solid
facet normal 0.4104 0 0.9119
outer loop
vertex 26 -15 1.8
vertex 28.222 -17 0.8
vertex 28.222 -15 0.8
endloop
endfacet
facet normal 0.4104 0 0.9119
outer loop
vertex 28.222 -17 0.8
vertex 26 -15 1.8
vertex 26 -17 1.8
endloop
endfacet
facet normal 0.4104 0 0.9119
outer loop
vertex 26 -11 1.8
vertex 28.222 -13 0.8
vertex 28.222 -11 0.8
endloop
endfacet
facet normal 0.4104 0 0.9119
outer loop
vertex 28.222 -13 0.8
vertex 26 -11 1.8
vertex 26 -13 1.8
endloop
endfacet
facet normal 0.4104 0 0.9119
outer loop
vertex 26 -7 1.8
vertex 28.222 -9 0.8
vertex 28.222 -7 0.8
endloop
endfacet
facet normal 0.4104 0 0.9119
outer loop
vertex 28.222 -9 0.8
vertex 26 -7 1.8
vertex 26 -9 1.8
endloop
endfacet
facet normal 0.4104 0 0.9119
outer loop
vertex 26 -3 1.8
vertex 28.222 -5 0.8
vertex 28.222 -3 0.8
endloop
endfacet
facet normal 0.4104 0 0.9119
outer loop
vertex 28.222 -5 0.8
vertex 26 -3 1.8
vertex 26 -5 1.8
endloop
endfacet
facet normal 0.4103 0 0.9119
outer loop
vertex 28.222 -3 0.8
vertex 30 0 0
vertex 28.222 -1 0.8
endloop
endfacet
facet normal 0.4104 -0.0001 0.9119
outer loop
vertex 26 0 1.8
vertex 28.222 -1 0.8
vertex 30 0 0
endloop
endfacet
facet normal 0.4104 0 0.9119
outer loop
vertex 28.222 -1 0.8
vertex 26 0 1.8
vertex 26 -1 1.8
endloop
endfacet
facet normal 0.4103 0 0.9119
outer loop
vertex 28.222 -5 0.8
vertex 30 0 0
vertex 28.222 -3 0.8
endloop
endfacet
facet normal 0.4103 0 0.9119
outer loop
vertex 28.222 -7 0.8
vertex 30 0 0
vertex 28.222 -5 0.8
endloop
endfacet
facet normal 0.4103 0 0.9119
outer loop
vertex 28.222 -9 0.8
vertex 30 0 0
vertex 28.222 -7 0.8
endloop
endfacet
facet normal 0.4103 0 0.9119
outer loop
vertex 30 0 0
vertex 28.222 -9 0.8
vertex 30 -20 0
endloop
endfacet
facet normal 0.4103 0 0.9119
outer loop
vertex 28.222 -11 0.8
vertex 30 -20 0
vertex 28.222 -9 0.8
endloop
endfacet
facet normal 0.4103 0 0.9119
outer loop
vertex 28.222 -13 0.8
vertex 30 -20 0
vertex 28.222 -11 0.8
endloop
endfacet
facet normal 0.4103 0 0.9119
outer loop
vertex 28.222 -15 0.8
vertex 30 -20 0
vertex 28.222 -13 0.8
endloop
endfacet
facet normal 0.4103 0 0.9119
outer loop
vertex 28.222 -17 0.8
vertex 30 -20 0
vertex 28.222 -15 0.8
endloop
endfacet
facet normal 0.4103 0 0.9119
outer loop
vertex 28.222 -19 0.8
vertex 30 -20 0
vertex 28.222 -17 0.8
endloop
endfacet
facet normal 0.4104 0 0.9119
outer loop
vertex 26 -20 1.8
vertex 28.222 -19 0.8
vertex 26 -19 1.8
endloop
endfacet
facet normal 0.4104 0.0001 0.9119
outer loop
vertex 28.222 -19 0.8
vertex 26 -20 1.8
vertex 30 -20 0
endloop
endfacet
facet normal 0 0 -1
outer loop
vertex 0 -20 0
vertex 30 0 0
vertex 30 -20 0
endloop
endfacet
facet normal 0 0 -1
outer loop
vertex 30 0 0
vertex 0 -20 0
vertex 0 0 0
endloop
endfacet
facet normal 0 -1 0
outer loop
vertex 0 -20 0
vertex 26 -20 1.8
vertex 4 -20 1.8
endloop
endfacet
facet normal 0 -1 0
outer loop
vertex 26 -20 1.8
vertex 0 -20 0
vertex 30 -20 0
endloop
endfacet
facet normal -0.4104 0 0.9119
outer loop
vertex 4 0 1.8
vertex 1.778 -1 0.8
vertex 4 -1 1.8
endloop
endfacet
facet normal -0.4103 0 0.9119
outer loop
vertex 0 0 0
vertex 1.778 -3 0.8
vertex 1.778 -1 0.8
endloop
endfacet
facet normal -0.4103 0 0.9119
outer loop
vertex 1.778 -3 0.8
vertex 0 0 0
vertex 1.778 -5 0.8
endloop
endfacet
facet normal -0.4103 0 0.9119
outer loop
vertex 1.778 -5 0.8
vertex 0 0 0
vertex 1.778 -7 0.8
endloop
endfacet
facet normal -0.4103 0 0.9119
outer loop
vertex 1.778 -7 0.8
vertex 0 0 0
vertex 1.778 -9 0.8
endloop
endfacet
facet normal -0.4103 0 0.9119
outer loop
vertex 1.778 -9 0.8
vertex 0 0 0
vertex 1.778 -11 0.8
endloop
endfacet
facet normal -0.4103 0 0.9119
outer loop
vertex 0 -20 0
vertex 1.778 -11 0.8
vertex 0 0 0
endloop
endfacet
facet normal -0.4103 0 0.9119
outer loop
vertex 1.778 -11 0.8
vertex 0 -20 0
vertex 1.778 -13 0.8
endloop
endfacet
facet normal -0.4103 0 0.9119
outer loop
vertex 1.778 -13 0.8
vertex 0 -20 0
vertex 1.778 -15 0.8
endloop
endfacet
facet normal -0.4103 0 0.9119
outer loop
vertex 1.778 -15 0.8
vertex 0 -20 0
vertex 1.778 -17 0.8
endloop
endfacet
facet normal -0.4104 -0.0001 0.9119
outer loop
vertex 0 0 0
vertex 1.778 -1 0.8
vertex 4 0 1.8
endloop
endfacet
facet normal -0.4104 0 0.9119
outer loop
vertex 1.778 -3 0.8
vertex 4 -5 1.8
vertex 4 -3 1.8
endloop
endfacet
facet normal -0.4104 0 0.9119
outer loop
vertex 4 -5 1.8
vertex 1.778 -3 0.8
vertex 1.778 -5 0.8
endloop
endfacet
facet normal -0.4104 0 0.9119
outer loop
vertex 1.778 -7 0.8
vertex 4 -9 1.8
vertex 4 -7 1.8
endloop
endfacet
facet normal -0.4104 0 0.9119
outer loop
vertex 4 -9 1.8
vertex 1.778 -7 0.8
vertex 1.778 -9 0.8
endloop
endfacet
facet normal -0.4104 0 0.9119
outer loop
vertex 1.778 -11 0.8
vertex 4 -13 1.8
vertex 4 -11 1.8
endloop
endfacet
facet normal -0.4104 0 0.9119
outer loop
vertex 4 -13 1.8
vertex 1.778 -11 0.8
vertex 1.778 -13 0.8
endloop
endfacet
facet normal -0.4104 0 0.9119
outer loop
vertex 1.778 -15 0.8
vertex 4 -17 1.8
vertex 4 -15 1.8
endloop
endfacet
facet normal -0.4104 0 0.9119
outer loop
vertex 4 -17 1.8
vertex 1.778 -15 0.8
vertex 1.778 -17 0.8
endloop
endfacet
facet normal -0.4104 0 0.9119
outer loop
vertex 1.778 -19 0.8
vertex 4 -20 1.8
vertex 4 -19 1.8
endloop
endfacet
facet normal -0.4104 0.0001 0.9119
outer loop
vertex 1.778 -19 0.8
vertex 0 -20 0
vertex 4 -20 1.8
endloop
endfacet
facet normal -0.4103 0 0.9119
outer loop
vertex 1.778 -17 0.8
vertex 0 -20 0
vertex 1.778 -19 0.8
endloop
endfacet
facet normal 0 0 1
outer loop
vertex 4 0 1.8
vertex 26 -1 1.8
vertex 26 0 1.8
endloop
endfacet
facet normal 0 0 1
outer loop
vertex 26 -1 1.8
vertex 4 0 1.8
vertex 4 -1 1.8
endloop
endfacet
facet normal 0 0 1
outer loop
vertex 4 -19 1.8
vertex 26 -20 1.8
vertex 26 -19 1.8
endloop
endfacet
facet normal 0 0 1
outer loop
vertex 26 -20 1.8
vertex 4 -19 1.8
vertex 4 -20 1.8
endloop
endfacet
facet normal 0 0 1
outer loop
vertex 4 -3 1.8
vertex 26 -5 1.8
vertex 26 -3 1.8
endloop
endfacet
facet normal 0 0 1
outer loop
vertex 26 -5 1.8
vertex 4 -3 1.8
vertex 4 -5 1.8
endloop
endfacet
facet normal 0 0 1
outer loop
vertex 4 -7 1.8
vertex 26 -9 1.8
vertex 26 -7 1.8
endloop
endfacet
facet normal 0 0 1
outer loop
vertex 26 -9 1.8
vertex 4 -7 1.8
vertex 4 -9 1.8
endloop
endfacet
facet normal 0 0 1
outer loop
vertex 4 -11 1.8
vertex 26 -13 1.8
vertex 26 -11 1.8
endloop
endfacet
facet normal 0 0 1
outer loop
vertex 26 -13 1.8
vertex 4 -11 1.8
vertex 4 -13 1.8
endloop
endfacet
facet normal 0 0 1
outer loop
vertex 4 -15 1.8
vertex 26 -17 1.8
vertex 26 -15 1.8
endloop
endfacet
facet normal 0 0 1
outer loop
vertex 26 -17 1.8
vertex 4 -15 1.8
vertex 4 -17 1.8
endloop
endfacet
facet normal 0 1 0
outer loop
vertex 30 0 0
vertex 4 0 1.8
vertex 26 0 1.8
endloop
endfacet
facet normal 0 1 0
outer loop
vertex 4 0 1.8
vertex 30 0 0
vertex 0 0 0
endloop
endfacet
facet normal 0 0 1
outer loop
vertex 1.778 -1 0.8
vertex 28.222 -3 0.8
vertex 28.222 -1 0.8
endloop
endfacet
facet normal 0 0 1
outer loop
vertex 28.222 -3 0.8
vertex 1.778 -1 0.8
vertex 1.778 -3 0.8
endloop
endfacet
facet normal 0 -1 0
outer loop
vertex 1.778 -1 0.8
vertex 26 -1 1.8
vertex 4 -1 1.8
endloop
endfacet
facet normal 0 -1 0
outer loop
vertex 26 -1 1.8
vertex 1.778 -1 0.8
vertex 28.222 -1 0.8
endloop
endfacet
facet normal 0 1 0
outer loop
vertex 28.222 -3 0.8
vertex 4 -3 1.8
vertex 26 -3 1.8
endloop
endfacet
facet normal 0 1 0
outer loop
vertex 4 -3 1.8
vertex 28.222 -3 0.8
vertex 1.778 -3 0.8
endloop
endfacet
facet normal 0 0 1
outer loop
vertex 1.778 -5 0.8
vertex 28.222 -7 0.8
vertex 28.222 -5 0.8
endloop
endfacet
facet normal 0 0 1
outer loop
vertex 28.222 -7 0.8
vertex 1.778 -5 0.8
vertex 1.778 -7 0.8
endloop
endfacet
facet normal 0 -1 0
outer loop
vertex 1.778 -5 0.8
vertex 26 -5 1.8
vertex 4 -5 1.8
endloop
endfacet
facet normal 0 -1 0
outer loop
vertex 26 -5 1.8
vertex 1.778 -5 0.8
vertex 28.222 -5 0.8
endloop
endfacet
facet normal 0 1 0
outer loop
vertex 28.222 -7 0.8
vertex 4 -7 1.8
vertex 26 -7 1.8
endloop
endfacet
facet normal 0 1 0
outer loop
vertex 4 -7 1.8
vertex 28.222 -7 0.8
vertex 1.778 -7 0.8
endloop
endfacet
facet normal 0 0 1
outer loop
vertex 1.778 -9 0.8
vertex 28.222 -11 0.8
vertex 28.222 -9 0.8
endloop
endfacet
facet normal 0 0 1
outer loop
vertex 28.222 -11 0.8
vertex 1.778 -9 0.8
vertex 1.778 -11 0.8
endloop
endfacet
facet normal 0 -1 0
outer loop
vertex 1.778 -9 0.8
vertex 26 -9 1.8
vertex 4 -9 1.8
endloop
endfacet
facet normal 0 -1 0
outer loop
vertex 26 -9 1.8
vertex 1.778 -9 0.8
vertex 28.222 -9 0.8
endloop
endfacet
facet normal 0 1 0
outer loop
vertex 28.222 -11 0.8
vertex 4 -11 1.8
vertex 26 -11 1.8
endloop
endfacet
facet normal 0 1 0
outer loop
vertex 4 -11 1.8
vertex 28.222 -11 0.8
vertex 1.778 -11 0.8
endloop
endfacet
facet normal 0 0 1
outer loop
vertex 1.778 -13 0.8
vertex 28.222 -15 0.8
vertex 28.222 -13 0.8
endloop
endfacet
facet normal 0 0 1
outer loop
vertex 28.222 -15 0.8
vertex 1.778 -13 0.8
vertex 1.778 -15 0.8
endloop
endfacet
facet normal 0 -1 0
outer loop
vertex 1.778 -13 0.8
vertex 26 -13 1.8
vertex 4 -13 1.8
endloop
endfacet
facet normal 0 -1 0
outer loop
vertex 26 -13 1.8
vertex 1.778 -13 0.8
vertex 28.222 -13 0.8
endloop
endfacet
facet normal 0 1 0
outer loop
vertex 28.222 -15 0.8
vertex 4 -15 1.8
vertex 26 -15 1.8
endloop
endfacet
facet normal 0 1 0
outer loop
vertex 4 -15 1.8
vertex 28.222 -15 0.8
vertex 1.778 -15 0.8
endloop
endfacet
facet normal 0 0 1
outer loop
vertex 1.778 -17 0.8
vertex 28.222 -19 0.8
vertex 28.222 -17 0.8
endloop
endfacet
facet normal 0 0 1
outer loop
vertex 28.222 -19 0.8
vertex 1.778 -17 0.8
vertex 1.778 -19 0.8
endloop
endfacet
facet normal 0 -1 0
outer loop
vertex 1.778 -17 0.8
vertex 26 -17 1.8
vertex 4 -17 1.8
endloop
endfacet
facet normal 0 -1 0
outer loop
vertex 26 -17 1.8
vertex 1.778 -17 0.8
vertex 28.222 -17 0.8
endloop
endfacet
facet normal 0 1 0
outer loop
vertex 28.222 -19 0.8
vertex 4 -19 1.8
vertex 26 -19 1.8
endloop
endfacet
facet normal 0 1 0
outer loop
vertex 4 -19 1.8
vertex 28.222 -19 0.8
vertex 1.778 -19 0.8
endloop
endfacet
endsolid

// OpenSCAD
difference() {
    rotate([90,0,0])
        linear_extrude(20)
            polygon([[0,0],[30,0],[30-4,1.8],[4,1.8]]);
    translate([-2,-4+1,0.8,]) cube([35,2,10]);
    translate([-2,-8+1,0.8,]) cube([35,2,10]);
    translate([-2,-12+1,0.8,]) cube([35,2,10]);
    translate([-2,-16+1,0.8,]) cube([35,2,10]);
    translate([-2,-20+1,0.8,]) cube([35,2,10]);
}
